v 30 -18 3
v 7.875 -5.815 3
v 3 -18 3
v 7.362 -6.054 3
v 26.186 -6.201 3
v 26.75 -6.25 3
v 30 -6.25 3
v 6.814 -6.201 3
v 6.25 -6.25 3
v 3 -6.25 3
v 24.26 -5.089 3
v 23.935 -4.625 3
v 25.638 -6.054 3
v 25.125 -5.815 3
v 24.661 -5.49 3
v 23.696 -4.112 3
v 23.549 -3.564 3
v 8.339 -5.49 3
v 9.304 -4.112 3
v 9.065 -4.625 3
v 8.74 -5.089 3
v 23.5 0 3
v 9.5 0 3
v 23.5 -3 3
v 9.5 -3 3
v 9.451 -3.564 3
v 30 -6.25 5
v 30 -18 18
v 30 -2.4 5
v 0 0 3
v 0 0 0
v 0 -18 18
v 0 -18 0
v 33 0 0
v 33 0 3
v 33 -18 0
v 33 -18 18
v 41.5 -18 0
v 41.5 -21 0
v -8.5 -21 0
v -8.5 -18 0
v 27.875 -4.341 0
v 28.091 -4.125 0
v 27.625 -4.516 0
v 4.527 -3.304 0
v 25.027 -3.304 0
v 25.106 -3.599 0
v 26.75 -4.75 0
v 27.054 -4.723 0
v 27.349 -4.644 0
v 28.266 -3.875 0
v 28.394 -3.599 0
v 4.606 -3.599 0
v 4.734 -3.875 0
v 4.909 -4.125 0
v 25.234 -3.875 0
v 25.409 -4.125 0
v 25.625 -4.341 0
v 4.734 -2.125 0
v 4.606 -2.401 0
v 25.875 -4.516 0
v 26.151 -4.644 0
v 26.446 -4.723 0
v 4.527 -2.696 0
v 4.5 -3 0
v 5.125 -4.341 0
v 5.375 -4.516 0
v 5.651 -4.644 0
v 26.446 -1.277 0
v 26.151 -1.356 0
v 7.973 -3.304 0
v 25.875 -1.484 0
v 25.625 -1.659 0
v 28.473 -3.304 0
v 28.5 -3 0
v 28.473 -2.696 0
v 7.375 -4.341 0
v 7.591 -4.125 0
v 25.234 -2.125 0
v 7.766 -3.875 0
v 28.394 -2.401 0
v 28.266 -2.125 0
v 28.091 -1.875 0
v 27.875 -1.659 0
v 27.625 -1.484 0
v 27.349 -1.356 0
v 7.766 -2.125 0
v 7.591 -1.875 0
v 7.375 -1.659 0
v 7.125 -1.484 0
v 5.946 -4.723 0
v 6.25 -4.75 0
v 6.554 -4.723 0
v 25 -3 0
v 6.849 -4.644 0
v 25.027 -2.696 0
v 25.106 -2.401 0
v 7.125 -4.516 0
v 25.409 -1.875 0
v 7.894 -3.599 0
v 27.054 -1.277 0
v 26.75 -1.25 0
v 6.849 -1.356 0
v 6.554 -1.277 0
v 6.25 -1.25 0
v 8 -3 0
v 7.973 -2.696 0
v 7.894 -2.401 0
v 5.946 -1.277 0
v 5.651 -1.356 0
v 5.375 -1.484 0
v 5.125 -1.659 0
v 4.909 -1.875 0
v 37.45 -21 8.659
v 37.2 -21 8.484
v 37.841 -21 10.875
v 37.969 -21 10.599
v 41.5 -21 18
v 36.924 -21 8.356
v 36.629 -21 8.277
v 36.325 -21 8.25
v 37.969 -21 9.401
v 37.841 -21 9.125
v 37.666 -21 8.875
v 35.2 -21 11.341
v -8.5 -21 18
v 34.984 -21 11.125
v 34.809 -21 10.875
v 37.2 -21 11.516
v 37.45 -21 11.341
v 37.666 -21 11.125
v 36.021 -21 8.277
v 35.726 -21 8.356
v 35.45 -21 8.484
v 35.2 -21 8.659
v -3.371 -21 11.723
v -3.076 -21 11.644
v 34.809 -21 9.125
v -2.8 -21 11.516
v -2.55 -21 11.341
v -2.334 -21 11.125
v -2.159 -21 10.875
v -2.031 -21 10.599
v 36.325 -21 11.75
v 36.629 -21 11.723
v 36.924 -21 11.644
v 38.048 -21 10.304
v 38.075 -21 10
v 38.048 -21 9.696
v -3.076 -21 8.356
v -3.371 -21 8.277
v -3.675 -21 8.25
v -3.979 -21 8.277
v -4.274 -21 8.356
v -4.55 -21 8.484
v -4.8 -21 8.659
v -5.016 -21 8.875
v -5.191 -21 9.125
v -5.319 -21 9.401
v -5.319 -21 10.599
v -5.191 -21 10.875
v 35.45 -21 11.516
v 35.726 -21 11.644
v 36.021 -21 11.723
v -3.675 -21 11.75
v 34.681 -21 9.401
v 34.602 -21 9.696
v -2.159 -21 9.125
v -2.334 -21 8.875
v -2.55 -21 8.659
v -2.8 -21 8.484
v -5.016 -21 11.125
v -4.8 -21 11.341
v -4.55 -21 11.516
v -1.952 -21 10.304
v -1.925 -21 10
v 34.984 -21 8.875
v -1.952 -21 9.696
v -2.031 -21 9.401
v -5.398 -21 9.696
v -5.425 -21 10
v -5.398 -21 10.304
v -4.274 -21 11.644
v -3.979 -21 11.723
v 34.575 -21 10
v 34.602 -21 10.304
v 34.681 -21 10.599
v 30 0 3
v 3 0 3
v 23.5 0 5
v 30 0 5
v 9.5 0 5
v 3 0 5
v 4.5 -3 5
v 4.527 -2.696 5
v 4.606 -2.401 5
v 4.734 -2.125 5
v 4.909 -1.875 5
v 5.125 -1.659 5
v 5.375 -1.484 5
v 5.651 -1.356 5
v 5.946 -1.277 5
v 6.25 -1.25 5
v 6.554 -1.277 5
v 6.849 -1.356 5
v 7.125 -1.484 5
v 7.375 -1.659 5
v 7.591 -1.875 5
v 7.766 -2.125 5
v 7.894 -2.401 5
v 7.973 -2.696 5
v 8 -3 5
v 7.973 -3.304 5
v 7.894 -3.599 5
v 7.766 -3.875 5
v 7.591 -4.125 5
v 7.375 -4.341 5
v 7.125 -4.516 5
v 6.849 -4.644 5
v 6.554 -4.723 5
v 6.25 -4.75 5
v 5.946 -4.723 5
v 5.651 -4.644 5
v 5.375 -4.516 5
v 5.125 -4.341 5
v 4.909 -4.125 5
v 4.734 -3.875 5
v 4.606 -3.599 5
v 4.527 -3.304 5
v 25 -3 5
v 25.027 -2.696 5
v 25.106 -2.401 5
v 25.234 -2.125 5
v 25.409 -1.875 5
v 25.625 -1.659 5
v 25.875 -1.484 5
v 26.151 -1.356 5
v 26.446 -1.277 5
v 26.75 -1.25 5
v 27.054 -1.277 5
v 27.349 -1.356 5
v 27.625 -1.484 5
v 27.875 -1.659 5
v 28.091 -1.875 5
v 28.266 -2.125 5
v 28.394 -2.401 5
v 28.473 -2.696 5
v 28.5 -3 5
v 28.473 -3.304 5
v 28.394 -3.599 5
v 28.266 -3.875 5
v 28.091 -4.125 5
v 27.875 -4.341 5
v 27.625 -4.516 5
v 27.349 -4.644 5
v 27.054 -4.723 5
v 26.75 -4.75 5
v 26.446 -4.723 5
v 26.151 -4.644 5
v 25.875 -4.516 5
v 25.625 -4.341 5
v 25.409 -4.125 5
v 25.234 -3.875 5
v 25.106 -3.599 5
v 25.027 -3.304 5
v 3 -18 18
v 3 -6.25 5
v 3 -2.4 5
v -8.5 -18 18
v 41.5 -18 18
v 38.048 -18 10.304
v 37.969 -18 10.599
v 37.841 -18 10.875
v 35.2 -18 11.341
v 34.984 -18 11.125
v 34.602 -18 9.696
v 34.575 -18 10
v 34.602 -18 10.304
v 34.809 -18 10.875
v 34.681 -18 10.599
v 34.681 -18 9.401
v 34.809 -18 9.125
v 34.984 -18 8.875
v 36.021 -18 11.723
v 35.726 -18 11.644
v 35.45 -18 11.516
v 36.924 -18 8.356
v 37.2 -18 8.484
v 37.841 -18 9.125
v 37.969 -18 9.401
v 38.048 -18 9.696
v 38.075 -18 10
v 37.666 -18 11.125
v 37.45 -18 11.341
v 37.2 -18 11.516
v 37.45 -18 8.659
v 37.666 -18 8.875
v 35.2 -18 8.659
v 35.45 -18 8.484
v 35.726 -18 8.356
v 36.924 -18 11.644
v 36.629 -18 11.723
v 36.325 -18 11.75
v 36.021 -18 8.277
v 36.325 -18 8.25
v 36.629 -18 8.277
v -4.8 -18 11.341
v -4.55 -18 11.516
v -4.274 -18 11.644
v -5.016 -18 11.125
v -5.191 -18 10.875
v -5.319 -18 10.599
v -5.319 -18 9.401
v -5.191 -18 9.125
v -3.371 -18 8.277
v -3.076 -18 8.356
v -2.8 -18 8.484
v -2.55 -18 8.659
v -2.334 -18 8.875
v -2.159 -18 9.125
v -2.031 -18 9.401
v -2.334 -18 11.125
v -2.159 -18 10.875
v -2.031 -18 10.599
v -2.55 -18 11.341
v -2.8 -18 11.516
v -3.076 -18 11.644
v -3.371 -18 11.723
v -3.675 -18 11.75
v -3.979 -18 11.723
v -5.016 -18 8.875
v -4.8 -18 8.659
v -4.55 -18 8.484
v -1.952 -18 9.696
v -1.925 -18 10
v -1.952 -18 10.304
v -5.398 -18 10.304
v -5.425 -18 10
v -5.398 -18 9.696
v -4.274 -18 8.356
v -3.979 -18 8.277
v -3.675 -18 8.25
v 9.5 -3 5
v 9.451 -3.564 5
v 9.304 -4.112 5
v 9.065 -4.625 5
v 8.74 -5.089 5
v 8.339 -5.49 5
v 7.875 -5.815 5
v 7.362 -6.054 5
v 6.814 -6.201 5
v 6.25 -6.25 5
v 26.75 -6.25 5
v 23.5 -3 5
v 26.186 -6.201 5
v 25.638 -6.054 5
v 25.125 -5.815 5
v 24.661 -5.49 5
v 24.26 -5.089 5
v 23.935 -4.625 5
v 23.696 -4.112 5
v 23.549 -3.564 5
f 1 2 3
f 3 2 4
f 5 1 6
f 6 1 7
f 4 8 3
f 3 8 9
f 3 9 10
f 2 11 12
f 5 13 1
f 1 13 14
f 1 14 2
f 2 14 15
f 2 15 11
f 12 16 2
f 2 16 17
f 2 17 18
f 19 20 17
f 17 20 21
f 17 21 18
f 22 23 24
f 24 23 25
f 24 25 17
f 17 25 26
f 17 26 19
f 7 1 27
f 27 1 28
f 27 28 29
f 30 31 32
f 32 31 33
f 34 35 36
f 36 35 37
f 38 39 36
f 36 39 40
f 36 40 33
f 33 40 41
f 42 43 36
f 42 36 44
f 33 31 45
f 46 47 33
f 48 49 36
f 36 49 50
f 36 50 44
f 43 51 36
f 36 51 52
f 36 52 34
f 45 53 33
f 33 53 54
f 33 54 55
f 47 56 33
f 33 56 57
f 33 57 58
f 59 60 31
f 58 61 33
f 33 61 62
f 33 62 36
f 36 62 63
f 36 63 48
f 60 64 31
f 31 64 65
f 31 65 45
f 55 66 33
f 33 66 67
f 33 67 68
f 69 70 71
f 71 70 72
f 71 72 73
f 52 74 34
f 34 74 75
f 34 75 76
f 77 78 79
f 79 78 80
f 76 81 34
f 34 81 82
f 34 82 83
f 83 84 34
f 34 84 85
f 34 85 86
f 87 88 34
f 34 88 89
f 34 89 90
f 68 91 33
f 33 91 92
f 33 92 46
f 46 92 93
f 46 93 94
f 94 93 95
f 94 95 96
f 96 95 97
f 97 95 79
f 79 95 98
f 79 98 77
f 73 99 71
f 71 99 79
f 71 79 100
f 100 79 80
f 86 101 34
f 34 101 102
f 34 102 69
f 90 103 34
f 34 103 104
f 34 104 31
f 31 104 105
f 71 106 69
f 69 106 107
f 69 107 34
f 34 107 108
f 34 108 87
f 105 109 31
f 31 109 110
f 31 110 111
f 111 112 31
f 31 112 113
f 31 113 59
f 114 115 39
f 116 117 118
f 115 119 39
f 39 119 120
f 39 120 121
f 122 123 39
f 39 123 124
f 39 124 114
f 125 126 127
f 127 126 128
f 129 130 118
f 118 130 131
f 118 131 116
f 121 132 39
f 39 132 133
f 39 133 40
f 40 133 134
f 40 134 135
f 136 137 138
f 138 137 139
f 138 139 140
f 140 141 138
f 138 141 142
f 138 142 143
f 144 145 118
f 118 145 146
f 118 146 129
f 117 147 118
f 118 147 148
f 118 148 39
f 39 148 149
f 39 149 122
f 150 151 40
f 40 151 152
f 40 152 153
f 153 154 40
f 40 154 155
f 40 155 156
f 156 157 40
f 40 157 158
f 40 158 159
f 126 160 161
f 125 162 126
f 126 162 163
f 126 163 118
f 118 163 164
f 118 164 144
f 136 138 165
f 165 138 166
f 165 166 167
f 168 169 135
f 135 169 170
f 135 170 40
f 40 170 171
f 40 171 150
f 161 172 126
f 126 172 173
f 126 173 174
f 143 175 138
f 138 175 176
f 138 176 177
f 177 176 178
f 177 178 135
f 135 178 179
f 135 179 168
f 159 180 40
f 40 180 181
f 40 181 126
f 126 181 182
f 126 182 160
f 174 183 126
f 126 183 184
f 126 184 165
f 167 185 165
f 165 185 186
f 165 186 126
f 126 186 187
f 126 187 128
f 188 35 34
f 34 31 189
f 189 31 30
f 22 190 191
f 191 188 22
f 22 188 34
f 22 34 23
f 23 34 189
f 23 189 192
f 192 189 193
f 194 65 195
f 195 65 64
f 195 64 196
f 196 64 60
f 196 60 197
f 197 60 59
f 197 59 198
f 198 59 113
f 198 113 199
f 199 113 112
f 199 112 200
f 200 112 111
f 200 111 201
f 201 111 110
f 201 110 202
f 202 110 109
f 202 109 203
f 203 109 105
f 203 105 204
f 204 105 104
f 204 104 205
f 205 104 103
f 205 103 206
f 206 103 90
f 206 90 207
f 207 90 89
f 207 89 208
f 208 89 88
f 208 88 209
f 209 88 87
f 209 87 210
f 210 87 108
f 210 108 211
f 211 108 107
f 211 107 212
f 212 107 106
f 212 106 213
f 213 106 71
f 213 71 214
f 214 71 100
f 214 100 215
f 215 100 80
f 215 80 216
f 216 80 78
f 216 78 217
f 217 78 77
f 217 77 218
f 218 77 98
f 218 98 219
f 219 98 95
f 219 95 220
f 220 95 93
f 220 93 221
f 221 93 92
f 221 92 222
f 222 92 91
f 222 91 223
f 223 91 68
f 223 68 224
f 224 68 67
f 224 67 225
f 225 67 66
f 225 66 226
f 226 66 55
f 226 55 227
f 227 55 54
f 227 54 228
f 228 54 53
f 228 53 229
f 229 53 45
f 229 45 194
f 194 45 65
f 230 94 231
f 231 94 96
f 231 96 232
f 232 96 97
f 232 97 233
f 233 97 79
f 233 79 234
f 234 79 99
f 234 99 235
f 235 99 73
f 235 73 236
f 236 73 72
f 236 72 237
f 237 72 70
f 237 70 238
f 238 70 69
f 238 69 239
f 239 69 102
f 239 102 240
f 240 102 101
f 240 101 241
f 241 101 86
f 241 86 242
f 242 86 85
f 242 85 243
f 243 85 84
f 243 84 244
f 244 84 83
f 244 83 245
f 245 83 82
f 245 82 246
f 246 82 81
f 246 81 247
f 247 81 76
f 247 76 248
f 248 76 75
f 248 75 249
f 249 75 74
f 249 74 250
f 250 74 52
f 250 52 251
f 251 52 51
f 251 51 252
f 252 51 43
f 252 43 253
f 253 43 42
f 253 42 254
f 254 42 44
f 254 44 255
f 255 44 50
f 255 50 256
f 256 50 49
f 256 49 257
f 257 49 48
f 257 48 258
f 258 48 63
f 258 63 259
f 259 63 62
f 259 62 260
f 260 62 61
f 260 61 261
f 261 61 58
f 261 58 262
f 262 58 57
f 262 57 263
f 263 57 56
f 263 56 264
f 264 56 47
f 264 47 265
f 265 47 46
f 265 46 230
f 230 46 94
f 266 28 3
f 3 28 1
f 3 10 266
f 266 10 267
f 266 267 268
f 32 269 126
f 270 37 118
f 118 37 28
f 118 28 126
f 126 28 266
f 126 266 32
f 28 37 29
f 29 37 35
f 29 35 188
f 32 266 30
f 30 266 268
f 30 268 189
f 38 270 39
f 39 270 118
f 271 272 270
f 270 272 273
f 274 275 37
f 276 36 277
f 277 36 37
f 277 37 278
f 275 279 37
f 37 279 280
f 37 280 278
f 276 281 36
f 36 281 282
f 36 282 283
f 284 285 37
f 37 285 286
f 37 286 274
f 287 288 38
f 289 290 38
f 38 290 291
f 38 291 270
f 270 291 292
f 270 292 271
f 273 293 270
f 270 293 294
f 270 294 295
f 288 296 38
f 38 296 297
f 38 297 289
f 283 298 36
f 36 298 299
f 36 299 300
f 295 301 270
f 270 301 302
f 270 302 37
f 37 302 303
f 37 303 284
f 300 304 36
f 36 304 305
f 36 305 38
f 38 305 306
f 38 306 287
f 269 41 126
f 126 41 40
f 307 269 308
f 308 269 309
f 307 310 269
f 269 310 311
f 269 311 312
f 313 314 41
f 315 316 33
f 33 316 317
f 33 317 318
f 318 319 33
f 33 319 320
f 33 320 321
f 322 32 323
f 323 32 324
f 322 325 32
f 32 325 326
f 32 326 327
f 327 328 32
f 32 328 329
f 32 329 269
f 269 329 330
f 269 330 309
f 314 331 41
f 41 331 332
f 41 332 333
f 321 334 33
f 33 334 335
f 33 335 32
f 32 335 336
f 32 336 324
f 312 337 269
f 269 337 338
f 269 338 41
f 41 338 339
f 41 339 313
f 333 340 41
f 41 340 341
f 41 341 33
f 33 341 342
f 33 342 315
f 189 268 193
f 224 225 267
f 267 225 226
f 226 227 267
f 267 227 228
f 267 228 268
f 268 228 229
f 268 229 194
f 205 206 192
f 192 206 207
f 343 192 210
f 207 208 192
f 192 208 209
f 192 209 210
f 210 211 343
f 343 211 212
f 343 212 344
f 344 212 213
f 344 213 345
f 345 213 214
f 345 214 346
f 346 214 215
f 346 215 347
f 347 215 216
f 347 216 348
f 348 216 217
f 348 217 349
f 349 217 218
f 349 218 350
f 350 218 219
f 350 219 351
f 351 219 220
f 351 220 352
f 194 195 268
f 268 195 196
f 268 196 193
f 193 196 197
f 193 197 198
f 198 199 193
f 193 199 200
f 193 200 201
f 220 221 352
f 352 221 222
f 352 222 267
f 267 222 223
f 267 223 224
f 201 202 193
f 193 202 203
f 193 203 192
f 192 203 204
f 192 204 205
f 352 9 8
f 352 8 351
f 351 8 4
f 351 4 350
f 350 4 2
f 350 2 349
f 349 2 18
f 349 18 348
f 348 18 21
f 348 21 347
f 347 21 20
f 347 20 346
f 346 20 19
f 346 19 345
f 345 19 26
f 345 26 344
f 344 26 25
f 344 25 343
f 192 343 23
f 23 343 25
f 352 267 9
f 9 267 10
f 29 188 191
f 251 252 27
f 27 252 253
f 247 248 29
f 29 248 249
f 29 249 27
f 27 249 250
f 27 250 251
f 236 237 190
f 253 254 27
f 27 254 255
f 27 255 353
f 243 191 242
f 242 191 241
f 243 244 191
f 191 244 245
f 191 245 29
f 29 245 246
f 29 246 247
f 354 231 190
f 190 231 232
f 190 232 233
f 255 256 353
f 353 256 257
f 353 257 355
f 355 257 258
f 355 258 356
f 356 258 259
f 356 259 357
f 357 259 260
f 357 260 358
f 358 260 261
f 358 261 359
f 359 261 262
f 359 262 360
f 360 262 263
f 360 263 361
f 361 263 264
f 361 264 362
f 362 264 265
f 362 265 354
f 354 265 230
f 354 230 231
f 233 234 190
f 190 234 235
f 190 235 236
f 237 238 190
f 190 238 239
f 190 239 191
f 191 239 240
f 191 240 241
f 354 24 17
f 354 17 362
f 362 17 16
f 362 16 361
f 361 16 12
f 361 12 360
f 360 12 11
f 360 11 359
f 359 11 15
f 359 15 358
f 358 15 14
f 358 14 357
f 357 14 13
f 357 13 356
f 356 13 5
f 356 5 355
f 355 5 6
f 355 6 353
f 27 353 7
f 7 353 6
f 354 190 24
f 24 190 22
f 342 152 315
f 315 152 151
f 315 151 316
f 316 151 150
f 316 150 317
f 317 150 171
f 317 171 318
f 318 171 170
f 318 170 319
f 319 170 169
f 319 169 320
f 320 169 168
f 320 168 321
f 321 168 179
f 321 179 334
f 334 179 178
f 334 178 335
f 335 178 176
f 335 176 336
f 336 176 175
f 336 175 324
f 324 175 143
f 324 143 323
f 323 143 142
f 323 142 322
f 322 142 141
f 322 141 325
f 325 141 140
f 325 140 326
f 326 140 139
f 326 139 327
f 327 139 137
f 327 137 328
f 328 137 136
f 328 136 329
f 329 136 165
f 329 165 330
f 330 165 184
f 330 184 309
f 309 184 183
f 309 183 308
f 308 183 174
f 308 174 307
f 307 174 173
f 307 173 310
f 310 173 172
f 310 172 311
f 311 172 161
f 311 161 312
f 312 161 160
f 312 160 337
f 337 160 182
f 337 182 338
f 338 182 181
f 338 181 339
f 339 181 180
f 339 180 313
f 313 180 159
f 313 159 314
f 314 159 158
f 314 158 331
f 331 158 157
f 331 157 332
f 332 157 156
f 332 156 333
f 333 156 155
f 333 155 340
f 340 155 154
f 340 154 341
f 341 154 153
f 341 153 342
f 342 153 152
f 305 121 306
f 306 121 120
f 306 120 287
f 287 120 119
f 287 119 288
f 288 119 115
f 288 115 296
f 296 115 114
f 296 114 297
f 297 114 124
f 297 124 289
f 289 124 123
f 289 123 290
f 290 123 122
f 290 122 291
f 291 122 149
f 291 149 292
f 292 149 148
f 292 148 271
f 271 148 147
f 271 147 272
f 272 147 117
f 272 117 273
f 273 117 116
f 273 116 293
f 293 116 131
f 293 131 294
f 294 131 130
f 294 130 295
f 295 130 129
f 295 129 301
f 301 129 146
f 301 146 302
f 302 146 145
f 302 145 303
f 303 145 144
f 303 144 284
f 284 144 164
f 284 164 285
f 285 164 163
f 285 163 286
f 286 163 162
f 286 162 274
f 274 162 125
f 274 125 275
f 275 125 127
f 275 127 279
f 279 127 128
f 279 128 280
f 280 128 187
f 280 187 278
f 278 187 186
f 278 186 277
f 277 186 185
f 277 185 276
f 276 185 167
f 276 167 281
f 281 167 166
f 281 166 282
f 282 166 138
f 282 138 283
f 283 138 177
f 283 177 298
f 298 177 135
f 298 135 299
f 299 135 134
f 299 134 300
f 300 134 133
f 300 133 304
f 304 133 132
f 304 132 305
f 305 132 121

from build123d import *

# Parameters (mm, degrees)
CROQUIS1_W              = 33
CROQUIS1_H              = 21
CROQUIS1_R              = 1.75
SALIENTE_EXTRUIR1_DEPTH = 3
SALIENTE_EXTRUIR2_DEPTH = 15
CORTAR_EXTRUIR1_DEPTH   = 44.058100283
CROQUIS4_W              = 8.5
CROQUIS4_H              = 18
SALIENTE_EXTRUIR3_DEPTH = 3
CROQUIS5_R              = 1.75
SALIENTE_EXTRUIR4_DEPTH = 2
CROQUIS8_R              = 1.75
CORTAR_EXTRUIR4_DEPTH   = 50.872337022


with BuildPart() as part:
    # Croquis1 → Saliente-Extruir1 (new body)
    with BuildSketch(Plane.XY):
        with Locations((16.5, -10.5)):
            Rectangle(CROQUIS1_W, CROQUIS1_H)
        with Locations((6.25, -3)):
            Circle(CROQUIS1_R, mode=Mode.SUBTRACT)
        with Locations((26.75, -3)):
            Circle(CROQUIS1_R, mode=Mode.SUBTRACT)
    extrude(amount=SALIENTE_EXTRUIR1_DEPTH)

    # Croquis2 → Saliente-Extruir2 (add)
    with BuildSketch(Plane.XY.offset(3)):
        Polygon((0, 0), (0, -21), (33, -21), (33, 0), (30, 0), (30, -18), (3, -18), (3, 0), align=None)
    extrude(amount=SALIENTE_EXTRUIR2_DEPTH)

    # Croquis3 → Cortar-Extruir1 (cut, through all)
    with BuildSketch(Plane.ZY):
        Polygon((3, 0), (18, -18), (18, 0), align=None)
    extrude(amount=-CORTAR_EXTRUIR1_DEPTH, mode=Mode.SUBTRACT)

    # Croquis4 → Saliente-Extruir3 (add)
    with BuildSketch(Plane(origin=(0, -18, 0), x_dir=(1, 0, 0), z_dir=(0, 1, 0))):
        with Locations((-4.25, -9)):
            Rectangle(CROQUIS4_W, CROQUIS4_H)
        with Locations((37.25, -9)):
            Rectangle(CROQUIS4_W, CROQUIS4_H)
    extrude(amount=-SALIENTE_EXTRUIR3_DEPTH)

    # Croquis5 → Saliente-Extruir4 (add)
    # profile 1 of 2: a face of its own
    with BuildSketch(Plane.XY.offset(3)):
        with BuildLine():
            Line((6.25, -6.25), (3, -6.25))
            Line((3, -6.25), (3, 0))
            Line((3, 0), (9.5, 0))
            Line((9.5, 0), (9.5, -3))
            ThreePointArc((9.5, -3), (8.548097039, -5.298097039), (6.25, -6.25))
        make_face()
        with Locations((6.25, -3)):
            Circle(CROQUIS5_R, mode=Mode.SUBTRACT)
    # profile 2 of 2: a face of its own
    with BuildSketch(Plane.XY.offset(3)):
        with BuildLine():
            Line((23.5, 0), (23.5, -3))
            ThreePointArc((23.5, -3), (24.451902961, -5.298097039), (26.75, -6.25))
            Line((26.75, -6.25), (30, -6.25))
            Line((30, -6.25), (30, 0))
            Line((30, 0), (23.5, 0))
        make_face()
        with Locations((26.75, -3)):
            Circle(CROQUIS5_R, mode=Mode.SUBTRACT)
    extrude(amount=SALIENTE_EXTRUIR4_DEPTH)

    # Croquis8 → Cortar-Extruir4 (cut, through all)
    with BuildSketch(Plane.XZ.offset(21)):
        with Locations(Location((-3.675, 10, 0), (0, 0, 270))):
            Circle(CROQUIS8_R)
        with Locations(Location((36.325, 10, 0), (0, 0, 270))):
            Circle(CROQUIS8_R)
    extrude(amount=-CORTAR_EXTRUIR4_DEPTH, mode=Mode.SUBTRACT)


solid = part.part
